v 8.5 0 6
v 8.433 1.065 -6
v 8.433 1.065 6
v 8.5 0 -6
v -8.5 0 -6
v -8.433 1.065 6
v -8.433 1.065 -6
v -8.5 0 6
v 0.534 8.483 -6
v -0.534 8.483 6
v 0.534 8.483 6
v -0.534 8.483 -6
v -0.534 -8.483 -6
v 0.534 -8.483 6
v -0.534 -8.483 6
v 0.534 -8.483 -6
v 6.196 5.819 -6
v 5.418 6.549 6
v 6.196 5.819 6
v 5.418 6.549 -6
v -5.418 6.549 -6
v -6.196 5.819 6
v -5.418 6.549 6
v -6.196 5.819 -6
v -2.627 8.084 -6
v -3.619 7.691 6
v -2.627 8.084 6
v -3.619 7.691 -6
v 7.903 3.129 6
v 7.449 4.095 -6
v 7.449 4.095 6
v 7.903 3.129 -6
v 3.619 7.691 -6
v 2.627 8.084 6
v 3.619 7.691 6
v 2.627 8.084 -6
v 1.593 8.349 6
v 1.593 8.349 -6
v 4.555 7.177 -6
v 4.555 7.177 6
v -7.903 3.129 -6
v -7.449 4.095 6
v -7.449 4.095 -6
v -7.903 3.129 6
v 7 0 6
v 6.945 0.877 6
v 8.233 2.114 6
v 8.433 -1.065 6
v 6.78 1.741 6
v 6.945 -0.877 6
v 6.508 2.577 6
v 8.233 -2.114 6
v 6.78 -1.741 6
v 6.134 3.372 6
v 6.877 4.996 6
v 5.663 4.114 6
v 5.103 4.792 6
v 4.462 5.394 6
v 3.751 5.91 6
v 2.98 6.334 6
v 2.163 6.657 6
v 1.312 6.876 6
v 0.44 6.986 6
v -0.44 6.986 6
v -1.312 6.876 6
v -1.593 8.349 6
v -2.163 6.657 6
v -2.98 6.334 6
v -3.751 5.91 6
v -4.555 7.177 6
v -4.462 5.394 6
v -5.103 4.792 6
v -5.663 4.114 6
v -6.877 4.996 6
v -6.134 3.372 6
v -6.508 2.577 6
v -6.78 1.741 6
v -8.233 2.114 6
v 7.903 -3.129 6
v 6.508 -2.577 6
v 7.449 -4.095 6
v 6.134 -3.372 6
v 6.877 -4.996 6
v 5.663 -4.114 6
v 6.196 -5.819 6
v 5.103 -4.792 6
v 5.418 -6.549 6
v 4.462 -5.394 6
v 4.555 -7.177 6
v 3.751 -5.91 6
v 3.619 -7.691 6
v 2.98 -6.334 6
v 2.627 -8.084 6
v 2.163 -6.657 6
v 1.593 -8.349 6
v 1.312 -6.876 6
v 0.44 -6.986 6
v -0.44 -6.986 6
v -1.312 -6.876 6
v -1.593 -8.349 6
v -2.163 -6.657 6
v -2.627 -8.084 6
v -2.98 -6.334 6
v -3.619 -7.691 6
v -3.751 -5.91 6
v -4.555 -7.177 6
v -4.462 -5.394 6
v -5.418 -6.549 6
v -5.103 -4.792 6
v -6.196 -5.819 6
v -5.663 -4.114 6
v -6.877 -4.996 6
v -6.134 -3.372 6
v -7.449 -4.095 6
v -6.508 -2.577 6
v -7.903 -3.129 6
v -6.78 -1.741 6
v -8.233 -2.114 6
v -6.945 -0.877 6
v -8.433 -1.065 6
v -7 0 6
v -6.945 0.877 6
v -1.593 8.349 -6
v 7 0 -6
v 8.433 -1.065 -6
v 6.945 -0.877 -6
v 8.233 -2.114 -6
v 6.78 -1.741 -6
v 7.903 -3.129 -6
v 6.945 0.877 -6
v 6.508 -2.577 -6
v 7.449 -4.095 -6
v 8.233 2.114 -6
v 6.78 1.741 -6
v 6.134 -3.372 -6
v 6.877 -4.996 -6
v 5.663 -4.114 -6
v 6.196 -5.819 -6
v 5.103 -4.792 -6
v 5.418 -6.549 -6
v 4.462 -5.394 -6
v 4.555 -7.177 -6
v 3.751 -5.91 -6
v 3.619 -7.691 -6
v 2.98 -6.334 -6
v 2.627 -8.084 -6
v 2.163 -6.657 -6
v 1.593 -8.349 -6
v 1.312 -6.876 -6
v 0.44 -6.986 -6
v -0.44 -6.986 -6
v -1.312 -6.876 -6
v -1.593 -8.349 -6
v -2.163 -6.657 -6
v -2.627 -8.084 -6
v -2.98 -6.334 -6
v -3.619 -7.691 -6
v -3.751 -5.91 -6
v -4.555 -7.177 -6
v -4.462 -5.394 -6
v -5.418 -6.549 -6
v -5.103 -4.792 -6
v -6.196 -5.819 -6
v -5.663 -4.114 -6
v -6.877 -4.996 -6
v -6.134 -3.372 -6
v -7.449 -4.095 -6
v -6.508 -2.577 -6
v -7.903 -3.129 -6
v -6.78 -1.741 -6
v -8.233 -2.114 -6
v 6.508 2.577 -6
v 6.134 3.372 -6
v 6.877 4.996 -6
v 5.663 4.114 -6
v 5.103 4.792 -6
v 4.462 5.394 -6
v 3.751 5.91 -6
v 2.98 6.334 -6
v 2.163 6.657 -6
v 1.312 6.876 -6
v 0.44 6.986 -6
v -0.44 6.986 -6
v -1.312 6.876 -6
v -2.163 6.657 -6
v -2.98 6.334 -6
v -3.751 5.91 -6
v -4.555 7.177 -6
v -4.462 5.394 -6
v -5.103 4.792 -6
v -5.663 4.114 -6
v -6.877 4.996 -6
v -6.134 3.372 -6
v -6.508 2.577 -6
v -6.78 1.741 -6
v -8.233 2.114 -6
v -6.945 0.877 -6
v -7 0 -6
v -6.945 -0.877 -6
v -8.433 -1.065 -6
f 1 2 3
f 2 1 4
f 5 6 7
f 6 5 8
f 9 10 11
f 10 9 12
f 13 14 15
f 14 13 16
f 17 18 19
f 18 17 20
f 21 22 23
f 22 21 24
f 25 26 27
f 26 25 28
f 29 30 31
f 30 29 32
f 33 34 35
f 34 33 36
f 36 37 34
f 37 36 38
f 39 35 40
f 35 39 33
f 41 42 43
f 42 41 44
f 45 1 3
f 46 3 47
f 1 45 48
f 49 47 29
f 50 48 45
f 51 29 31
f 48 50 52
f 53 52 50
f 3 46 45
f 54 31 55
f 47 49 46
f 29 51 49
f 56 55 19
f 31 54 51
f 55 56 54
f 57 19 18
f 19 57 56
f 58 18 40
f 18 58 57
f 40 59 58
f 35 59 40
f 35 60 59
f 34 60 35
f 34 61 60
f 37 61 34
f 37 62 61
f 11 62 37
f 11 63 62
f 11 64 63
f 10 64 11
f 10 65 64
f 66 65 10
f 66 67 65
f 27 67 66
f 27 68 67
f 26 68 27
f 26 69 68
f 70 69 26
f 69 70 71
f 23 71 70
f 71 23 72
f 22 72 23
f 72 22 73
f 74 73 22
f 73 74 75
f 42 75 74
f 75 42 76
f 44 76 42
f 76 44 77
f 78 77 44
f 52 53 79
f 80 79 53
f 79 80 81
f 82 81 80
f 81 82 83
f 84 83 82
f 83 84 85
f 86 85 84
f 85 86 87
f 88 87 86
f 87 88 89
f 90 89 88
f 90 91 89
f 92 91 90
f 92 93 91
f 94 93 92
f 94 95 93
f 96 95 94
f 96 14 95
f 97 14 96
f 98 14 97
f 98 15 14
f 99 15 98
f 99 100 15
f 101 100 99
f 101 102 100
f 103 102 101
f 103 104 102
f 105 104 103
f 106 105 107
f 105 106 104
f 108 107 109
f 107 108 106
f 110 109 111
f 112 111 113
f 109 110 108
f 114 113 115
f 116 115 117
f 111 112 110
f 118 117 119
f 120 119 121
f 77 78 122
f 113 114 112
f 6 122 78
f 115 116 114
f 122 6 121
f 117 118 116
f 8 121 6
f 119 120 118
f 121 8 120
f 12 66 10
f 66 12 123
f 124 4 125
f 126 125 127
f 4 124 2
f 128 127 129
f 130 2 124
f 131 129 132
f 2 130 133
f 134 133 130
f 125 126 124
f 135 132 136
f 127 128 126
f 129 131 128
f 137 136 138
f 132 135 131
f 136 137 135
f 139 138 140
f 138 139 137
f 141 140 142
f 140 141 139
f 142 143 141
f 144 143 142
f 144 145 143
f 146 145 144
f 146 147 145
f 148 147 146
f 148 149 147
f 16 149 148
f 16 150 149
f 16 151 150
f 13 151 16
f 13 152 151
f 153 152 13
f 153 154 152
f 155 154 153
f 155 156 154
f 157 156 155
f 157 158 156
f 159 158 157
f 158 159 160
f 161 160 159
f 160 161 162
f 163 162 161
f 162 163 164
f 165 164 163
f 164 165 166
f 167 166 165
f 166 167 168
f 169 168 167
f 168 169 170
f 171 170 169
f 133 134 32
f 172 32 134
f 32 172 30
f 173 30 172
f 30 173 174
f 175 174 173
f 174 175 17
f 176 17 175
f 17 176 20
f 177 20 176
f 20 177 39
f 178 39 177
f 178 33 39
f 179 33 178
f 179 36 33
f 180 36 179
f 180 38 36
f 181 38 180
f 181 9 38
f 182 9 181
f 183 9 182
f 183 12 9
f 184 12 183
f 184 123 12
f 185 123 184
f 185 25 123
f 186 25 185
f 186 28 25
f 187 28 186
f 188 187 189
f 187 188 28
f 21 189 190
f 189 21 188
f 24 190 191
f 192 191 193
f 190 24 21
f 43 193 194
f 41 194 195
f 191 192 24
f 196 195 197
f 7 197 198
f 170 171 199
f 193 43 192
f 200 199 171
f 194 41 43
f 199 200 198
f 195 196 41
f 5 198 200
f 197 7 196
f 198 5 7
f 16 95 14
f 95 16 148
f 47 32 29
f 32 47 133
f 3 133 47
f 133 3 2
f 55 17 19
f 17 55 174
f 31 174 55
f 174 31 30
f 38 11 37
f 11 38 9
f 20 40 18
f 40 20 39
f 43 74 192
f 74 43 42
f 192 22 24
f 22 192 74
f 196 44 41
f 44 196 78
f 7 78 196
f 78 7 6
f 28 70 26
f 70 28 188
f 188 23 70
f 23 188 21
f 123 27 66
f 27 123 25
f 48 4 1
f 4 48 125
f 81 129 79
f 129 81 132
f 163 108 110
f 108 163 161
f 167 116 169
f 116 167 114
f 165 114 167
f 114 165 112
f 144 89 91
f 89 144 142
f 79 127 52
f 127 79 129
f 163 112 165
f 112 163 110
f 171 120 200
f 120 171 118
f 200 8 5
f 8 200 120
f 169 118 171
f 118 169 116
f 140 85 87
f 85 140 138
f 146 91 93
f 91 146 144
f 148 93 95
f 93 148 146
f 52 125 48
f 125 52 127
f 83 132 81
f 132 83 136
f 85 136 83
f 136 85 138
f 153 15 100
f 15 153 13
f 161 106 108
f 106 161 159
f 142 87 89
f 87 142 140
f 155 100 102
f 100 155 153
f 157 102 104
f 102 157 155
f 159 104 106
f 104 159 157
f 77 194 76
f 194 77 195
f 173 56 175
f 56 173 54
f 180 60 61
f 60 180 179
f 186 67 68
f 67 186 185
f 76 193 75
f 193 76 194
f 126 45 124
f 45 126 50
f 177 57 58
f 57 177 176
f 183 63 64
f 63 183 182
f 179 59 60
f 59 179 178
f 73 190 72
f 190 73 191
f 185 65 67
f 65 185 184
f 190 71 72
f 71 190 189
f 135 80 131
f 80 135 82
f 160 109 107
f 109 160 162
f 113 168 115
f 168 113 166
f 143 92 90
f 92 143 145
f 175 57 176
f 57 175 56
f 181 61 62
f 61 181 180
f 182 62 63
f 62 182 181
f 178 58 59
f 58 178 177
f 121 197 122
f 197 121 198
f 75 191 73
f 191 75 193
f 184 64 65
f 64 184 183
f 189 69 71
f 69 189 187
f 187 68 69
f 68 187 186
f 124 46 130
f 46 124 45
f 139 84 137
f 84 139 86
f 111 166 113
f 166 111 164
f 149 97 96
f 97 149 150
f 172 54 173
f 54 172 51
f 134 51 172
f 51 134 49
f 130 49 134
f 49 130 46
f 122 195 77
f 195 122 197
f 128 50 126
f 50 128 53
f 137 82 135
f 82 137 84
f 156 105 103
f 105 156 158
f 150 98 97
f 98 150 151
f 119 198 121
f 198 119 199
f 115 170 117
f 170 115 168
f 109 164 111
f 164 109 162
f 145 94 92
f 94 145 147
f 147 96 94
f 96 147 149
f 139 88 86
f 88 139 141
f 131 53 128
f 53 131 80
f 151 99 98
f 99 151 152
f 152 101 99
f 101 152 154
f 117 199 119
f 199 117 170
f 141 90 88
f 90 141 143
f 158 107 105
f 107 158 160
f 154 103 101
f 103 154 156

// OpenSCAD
$fn = 50;


difference() {
	union() {
		translate(v = [0, 0, -6.0000000000]) {
			cylinder(h = 12, r = 8.5000000000);
		}
	}
	union() {
		translate(v = [0, 0, -100.0000000000]) {
			cylinder(h = 200, r = 7);
		}
	}
}
